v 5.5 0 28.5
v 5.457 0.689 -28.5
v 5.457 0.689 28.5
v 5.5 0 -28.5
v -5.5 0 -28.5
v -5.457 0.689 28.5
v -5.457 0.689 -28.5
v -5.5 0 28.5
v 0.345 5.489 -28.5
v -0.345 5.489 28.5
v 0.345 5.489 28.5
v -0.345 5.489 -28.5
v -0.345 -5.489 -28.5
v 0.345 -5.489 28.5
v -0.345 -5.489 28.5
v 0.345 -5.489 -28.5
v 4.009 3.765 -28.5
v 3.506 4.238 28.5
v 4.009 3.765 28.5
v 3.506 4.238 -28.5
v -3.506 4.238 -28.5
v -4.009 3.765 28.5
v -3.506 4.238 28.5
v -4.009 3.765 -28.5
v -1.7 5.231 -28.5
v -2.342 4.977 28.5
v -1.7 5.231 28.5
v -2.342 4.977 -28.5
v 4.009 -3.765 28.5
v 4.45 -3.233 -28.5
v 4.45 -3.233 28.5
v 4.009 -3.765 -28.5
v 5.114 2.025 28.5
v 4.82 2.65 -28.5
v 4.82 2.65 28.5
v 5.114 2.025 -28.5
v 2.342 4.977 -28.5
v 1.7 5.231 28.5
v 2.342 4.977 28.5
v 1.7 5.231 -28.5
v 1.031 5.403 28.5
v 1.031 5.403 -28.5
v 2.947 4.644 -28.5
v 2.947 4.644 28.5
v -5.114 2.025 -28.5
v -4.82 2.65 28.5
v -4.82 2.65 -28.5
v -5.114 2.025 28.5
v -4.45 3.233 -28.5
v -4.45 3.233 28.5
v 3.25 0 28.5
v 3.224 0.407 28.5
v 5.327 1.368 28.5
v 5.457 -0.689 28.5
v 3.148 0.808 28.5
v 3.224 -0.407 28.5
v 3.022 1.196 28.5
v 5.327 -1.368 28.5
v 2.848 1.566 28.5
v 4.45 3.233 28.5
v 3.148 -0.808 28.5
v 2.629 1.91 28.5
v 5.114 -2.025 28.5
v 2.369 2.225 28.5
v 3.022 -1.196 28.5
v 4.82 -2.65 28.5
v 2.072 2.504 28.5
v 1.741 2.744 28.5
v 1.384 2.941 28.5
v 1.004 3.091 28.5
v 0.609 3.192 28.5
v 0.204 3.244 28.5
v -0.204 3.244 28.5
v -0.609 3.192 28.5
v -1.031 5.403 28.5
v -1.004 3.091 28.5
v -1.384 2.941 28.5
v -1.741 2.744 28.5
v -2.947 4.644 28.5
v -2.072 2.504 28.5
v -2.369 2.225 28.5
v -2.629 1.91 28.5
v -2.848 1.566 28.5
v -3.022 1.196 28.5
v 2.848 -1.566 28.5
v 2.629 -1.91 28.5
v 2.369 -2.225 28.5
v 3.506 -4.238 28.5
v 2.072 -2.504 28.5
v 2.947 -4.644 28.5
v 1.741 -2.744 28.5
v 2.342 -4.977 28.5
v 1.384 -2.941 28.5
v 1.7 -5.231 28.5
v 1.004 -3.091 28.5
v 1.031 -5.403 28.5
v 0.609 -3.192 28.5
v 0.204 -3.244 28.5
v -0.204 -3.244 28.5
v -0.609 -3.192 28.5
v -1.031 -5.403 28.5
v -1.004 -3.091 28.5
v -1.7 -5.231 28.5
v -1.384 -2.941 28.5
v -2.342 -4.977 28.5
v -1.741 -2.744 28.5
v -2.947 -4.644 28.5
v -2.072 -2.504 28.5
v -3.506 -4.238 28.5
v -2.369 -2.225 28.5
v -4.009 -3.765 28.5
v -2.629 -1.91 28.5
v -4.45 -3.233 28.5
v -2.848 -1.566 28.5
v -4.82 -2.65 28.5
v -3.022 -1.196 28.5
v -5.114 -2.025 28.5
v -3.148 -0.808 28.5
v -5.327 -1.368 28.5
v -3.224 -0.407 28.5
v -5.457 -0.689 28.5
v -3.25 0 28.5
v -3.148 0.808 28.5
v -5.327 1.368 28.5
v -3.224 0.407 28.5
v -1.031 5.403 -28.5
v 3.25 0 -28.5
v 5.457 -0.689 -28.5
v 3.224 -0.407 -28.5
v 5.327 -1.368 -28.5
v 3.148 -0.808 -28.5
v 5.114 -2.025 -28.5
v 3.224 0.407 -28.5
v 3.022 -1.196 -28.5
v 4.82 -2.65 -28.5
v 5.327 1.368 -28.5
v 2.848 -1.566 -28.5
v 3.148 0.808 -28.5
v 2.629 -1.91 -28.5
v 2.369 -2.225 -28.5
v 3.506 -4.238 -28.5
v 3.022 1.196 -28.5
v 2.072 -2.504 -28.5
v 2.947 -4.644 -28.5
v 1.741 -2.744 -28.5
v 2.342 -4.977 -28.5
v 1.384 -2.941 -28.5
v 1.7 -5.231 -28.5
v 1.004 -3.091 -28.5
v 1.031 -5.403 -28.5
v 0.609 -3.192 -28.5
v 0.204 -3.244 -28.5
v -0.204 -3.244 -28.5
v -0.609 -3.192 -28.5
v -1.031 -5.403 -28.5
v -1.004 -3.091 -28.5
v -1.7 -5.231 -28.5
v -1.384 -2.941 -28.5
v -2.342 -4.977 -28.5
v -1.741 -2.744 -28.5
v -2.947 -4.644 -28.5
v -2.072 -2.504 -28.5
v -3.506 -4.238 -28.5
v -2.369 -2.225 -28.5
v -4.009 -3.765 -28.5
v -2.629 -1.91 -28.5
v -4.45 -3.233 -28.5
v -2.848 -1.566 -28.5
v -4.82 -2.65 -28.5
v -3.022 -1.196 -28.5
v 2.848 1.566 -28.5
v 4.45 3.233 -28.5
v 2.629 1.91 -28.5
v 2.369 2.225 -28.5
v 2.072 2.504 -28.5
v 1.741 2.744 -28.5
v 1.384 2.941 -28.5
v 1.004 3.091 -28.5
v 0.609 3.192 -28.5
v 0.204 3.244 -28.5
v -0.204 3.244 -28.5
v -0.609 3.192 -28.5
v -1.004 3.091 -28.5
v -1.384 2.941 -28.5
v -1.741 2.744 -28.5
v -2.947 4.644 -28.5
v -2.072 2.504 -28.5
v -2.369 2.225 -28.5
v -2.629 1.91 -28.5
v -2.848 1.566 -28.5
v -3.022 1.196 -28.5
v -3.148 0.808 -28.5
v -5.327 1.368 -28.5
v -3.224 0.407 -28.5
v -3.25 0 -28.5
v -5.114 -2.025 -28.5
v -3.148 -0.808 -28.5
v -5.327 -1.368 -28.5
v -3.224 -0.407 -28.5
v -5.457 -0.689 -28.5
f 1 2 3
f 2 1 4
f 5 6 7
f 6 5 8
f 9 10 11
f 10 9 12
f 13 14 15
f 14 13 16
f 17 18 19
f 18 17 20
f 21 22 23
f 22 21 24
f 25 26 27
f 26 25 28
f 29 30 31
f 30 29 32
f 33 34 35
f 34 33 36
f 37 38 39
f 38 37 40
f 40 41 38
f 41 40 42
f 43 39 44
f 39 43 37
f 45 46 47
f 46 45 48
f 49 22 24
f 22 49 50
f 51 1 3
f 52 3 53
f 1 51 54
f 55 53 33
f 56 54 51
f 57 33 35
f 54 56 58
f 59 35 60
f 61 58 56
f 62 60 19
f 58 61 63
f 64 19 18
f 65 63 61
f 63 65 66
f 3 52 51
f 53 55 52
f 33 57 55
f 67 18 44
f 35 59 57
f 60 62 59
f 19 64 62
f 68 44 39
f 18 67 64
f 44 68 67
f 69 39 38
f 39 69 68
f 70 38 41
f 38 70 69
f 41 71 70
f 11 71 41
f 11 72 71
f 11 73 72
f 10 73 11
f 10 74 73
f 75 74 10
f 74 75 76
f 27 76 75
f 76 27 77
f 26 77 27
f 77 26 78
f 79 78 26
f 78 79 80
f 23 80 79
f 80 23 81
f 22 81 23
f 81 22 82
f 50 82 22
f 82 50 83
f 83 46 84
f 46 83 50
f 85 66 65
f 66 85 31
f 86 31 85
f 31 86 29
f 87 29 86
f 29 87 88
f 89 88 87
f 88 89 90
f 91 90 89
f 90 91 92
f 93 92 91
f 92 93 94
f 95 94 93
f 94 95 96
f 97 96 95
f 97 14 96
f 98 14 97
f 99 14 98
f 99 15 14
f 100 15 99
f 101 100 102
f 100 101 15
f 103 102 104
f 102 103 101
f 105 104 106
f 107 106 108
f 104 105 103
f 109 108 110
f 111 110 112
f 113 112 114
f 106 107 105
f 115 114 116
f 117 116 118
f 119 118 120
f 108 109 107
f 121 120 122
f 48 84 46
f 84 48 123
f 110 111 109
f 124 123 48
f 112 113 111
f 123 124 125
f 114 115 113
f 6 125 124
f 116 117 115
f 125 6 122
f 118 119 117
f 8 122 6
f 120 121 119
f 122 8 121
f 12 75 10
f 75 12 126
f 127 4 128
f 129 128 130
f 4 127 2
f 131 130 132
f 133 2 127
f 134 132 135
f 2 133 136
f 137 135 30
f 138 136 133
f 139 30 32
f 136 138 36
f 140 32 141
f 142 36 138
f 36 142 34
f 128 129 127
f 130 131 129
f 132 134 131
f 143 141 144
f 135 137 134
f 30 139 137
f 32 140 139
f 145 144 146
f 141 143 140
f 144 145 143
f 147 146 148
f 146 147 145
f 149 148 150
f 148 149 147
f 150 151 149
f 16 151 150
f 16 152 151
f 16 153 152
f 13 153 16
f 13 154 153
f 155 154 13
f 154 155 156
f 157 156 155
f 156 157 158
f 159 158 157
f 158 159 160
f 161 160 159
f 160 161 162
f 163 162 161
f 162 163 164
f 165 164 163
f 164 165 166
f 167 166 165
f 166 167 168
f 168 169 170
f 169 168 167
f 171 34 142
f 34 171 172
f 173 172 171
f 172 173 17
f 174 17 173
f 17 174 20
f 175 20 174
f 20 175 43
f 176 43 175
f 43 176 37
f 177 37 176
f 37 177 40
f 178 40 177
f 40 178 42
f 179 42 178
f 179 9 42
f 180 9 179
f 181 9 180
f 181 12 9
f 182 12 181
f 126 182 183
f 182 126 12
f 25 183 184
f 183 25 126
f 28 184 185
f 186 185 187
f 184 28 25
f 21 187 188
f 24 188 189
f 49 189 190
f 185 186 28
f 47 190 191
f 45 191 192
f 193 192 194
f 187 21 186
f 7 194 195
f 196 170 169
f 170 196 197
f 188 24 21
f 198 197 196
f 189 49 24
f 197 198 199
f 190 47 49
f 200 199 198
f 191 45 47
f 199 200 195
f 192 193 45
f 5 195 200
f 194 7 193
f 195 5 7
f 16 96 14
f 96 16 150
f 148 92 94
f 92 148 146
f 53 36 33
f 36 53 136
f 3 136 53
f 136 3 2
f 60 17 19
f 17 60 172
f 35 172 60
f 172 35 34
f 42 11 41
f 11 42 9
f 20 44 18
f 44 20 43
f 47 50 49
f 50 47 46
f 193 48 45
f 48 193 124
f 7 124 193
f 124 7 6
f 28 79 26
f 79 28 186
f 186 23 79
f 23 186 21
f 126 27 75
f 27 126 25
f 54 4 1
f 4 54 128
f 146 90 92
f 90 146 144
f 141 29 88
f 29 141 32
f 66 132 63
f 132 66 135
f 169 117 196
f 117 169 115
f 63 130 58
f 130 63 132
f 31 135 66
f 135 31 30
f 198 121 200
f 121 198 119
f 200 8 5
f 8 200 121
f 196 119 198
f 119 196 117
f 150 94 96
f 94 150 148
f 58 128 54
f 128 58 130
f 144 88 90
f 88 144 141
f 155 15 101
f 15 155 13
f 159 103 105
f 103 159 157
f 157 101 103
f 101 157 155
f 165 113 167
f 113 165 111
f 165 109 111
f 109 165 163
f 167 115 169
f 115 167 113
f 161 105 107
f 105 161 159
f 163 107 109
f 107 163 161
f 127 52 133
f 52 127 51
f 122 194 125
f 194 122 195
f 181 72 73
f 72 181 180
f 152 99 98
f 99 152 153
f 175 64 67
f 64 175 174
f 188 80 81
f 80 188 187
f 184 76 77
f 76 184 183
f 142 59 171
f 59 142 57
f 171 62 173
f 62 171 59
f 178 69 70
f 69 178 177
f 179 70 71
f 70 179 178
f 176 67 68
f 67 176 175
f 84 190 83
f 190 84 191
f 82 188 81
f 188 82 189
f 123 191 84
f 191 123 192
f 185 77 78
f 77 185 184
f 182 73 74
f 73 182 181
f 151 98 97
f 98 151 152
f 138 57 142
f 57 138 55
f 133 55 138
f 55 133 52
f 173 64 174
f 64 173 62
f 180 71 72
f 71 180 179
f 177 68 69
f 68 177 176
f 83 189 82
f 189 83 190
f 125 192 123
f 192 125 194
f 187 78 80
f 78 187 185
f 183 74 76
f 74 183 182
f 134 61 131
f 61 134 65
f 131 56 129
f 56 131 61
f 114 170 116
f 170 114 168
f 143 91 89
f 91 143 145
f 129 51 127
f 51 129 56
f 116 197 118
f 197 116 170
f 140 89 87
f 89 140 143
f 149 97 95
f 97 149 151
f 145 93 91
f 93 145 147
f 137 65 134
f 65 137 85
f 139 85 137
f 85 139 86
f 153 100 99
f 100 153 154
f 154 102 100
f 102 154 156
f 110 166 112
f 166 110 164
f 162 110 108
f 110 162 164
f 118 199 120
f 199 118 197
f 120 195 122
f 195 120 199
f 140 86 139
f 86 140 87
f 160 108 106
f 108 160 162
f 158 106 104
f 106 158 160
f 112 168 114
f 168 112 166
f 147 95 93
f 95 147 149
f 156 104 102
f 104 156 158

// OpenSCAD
$fn = 50;


difference() {
	union() {
		translate(v = [0, 0, -28.5000000000]) {
			cylinder(h = 57, r = 5.5000000000);
		}
	}
	union() {
		translate(v = [0, 0, -100.0000000000]) {
			cylinder(h = 200, r = 3.2500000000);
		}
	}
}
